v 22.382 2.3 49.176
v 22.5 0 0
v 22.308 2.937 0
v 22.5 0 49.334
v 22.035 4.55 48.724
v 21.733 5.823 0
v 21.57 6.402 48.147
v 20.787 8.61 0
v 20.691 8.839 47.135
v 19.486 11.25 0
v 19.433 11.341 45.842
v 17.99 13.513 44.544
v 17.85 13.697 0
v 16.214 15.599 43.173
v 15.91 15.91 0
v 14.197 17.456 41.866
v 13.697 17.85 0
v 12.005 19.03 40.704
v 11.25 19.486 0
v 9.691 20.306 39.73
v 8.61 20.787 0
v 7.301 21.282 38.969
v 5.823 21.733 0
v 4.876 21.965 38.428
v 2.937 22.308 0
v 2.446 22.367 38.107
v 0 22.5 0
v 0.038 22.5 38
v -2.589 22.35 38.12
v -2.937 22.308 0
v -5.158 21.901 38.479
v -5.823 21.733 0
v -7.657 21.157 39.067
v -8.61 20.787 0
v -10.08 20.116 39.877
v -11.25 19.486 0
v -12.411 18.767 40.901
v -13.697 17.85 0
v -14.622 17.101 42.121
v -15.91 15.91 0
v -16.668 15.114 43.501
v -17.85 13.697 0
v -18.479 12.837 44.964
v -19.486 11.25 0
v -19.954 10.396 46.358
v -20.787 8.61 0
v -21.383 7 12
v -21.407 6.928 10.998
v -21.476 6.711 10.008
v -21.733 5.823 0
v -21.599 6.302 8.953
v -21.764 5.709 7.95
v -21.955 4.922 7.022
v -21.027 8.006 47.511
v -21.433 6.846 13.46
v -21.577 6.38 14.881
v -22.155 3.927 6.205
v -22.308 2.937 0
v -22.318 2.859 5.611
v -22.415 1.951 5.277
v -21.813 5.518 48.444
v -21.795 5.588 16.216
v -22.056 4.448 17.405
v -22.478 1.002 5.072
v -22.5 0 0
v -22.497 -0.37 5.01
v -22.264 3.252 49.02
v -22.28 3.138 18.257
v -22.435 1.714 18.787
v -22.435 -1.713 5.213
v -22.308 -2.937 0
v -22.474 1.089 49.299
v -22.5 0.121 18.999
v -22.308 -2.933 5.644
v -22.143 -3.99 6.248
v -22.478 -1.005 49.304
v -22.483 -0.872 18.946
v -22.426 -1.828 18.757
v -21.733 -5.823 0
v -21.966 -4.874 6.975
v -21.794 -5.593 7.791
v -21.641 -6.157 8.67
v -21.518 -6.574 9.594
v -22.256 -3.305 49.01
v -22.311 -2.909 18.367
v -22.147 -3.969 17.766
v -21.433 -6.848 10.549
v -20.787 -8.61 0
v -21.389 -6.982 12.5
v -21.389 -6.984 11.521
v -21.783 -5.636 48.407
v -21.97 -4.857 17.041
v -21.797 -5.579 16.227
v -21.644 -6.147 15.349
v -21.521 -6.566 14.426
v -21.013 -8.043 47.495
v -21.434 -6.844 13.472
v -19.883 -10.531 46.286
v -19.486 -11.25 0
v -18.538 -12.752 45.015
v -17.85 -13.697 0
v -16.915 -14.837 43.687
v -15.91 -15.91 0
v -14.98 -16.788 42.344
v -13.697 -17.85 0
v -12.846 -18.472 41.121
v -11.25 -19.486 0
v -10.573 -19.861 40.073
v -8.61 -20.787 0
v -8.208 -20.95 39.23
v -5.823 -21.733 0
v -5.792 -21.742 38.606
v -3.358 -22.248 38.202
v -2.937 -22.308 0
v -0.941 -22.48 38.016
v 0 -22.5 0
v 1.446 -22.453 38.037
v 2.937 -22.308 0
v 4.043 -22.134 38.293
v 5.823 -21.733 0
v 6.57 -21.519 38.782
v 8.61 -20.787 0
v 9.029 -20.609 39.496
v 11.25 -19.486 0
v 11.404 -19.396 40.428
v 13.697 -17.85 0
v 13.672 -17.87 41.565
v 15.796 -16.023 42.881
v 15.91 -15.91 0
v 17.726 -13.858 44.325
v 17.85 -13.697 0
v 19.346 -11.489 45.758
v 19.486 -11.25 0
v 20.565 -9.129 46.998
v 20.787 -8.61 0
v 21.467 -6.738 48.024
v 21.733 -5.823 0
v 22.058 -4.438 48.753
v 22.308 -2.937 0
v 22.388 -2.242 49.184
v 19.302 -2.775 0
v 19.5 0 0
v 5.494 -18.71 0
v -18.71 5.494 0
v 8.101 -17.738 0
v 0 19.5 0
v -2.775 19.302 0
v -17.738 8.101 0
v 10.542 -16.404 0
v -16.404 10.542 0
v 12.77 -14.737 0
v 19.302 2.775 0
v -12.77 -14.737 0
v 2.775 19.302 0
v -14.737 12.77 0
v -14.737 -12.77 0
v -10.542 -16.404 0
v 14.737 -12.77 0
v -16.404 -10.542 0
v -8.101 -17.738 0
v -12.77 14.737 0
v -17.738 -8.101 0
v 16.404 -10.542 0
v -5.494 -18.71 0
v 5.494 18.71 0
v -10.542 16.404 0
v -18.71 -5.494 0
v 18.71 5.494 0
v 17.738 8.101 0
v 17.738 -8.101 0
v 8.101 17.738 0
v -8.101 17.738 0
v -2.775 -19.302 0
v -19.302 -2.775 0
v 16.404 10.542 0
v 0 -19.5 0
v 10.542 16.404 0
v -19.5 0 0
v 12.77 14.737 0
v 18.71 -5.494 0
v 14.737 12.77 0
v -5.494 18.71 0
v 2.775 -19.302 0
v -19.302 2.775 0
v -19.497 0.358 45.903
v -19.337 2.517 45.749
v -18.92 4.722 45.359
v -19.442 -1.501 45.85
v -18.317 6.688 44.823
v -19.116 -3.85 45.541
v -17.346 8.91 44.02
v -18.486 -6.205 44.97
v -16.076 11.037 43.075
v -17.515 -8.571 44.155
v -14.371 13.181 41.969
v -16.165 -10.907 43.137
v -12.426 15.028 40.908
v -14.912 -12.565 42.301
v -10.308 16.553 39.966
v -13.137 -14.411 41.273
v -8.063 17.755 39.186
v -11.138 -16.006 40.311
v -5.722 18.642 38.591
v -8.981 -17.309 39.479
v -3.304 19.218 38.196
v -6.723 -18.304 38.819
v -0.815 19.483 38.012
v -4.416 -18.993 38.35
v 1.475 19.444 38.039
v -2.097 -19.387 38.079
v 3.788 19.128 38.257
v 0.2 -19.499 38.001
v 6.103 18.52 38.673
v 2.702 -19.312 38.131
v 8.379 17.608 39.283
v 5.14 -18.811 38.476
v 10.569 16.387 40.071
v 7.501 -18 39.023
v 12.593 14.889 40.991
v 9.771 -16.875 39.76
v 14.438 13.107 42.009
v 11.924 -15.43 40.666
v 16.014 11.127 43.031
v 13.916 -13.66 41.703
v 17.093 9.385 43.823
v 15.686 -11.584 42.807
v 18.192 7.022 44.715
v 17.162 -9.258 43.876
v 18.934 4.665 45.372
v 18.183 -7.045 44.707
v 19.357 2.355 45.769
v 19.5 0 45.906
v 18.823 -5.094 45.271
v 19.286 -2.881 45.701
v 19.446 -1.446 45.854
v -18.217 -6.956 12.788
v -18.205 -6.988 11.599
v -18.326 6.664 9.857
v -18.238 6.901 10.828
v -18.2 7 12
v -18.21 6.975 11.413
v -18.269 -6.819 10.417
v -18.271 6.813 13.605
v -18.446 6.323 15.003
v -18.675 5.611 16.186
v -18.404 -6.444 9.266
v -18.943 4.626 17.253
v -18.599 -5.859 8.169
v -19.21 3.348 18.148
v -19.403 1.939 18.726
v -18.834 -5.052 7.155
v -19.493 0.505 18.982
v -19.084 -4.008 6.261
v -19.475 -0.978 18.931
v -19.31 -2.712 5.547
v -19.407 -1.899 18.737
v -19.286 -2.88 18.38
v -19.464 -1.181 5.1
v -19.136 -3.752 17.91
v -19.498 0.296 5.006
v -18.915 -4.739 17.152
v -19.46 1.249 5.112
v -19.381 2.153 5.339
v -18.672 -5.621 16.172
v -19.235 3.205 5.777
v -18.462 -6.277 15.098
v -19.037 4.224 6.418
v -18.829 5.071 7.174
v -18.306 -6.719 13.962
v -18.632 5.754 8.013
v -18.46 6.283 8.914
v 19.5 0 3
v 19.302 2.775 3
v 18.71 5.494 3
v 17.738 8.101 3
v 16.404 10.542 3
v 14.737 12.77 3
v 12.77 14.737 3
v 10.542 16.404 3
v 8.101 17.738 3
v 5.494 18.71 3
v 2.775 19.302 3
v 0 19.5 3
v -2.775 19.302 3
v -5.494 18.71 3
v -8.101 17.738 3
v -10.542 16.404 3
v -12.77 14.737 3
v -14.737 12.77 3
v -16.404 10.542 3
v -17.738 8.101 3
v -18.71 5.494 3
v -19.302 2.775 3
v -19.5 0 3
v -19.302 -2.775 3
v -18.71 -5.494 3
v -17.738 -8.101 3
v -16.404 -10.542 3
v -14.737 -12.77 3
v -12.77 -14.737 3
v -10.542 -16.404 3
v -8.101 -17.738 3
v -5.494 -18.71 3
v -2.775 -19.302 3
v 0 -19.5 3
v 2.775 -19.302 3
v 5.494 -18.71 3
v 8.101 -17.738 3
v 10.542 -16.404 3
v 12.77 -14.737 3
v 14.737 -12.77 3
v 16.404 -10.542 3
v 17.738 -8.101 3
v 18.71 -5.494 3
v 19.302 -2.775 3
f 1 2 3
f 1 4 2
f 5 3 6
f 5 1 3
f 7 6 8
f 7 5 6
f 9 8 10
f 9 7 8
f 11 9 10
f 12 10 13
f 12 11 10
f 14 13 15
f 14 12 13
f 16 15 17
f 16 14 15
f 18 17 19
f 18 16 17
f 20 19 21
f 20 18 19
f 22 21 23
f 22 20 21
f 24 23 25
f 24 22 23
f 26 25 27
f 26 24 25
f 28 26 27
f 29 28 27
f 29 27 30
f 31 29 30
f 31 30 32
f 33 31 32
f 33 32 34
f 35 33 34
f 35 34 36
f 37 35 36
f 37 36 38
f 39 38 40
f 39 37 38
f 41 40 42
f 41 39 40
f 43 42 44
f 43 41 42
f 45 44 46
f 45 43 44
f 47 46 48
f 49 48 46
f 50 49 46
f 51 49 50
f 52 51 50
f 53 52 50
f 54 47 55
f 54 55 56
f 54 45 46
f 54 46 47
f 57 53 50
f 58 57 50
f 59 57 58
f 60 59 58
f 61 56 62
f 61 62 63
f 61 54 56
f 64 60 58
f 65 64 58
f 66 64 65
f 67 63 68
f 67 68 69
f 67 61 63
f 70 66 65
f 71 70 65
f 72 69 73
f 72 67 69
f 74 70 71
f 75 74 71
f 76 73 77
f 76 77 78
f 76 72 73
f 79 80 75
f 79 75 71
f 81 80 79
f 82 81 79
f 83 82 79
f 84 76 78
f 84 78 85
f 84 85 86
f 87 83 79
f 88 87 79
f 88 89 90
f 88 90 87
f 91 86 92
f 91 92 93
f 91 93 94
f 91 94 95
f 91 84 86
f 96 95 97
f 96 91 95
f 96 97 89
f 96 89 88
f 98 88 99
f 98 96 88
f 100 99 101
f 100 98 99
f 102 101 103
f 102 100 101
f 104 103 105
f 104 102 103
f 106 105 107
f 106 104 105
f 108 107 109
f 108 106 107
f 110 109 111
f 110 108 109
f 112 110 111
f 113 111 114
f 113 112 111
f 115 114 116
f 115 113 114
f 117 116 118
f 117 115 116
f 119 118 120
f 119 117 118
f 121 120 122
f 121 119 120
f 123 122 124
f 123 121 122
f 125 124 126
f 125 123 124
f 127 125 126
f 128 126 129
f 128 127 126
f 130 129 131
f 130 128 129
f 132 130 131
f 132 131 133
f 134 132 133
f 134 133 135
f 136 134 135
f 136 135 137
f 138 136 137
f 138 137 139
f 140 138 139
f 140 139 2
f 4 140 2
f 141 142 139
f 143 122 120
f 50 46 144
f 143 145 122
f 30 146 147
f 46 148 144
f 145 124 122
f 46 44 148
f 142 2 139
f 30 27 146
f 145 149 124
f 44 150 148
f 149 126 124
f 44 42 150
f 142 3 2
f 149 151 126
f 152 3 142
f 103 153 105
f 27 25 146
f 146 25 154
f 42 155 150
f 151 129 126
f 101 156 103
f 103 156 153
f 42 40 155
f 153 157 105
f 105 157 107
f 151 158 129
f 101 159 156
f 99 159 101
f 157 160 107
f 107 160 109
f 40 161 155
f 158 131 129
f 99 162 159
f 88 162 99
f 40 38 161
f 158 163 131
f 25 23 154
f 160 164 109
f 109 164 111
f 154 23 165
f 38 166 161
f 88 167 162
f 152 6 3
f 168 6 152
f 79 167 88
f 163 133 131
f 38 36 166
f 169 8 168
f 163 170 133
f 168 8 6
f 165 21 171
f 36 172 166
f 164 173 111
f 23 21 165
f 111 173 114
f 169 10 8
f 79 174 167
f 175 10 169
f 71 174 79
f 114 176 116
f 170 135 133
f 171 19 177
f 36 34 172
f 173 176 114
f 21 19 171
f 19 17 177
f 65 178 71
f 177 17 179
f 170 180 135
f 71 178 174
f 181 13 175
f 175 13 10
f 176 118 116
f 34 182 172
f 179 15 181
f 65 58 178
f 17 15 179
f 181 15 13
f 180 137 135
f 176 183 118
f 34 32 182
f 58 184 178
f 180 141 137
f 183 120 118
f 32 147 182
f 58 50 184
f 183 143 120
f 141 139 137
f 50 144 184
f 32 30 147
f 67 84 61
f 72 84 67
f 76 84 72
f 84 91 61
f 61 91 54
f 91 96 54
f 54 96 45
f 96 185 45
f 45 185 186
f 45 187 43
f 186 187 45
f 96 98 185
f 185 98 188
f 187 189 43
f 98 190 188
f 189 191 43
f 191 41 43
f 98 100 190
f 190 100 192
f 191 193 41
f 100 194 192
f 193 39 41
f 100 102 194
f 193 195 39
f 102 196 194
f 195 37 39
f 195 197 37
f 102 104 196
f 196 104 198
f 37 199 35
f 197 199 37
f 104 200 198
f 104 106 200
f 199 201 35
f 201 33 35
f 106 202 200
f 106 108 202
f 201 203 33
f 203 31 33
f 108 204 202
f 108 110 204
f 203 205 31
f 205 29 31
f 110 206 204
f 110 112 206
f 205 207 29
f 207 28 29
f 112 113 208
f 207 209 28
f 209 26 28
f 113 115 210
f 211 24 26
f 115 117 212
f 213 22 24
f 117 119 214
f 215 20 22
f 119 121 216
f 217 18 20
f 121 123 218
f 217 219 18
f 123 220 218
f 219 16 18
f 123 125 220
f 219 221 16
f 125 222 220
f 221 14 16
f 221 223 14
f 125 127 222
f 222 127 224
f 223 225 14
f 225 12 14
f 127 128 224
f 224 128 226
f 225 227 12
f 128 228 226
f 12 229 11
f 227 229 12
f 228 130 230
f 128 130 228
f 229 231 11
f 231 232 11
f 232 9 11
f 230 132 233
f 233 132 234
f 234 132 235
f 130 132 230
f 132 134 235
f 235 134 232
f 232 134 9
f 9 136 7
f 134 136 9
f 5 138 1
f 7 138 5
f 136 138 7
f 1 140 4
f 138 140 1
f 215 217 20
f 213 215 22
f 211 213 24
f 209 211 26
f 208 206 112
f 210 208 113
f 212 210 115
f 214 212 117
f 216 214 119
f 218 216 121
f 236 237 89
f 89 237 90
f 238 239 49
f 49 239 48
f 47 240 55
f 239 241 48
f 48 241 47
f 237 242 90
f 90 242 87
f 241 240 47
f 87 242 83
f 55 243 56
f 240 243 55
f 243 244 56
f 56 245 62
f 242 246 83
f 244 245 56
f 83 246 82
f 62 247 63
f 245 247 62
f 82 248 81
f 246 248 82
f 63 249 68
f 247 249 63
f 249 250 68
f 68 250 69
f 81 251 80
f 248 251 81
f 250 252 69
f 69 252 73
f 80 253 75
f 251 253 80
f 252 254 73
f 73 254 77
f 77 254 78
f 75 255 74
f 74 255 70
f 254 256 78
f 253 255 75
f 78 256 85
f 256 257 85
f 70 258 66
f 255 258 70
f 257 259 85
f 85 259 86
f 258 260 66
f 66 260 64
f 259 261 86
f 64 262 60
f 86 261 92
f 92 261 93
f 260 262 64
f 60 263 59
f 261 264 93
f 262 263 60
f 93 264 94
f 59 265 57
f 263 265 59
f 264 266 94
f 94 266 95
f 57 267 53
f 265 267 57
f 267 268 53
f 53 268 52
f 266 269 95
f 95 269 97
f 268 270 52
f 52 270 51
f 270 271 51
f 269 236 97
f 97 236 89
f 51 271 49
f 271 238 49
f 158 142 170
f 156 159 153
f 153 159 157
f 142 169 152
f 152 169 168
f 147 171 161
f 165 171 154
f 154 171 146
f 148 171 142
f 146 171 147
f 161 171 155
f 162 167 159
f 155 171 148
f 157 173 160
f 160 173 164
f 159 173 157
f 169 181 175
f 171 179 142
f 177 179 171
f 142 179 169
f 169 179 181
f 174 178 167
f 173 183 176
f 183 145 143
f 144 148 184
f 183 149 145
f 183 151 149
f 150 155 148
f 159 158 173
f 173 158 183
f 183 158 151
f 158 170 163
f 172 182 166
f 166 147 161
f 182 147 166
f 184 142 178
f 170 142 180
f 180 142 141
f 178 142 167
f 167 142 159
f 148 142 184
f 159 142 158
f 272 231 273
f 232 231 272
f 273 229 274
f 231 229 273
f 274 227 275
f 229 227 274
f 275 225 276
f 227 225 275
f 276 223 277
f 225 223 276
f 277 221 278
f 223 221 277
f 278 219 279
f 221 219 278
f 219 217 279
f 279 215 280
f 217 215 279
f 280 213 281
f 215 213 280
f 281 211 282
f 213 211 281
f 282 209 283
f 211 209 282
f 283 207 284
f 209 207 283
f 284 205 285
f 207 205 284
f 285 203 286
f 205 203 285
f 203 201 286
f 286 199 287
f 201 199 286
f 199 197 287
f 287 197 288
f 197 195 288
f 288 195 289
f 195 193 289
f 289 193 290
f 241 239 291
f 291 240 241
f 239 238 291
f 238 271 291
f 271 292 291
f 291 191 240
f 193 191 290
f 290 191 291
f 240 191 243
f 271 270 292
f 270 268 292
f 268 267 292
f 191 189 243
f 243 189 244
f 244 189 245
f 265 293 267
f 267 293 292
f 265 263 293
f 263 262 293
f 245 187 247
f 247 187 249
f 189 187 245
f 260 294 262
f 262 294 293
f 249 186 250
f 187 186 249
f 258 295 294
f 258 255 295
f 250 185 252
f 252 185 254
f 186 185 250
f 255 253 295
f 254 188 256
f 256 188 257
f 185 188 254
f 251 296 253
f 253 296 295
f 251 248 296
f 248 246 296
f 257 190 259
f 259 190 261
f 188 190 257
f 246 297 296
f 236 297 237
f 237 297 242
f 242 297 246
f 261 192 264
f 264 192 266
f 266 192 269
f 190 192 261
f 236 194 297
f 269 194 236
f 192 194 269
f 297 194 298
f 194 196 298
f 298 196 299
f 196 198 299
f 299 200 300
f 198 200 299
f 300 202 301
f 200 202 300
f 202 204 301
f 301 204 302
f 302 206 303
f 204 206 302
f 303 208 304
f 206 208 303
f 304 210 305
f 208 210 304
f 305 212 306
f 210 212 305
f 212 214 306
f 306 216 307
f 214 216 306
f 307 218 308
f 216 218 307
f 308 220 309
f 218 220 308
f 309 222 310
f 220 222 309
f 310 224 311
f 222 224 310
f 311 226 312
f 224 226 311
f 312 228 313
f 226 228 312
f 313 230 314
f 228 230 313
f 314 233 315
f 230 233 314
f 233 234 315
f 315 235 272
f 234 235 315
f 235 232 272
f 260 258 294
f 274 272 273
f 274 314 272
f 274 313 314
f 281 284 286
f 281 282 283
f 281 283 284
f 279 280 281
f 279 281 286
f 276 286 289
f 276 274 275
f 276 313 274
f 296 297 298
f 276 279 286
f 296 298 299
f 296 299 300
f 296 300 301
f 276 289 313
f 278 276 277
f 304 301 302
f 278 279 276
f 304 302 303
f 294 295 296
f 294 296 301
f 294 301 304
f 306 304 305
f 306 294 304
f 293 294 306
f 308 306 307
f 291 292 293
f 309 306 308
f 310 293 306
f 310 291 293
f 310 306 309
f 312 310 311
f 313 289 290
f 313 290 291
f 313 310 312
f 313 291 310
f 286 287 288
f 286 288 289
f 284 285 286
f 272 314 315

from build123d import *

# Parameters (mm, degrees)
CYLINDER_R        = 22.5
CYLINDER_DEPTH    = 50
CYLINDER001_R     = 19.5
CYLINDER001_DEPTH = 60
CYLINDER002_R     = 28
CYLINDER002_DEPTH = 54
CYLINDER003_R     = 7
CYLINDER003_DEPTH = 10
CYLINDER004_R     = 19.5
CYLINDER004_DEPTH = 3


with BuildPart() as part:
    # Cylinder → Cylinder (join)
    with BuildSketch(Plane.XY):
        Circle(CYLINDER_R)
    extrude(amount=CYLINDER_DEPTH)

    # Cylinder001 → Cylinder001 (cut)
    with BuildSketch(Plane.XY.offset(-5)):
        Circle(CYLINDER001_R)
    extrude(amount=CYLINDER001_DEPTH, mode=Mode.SUBTRACT)

    # Cylinder002 → Cylinder002 (cut)
    with BuildSketch(Plane(origin=(0, 26, 66), x_dir=(1, 0, 0), z_dir=(0, -1, 0))):
        Circle(CYLINDER002_R)
    extrude(amount=CYLINDER002_DEPTH, mode=Mode.SUBTRACT)

    # Cylinder003 → Cylinder003 (cut)
    with BuildSketch(Plane(origin=(-26, 0, 12), x_dir=(0, 1, 0), z_dir=(1, 0, 0))):
        Circle(CYLINDER003_R)
    extrude(amount=CYLINDER003_DEPTH, mode=Mode.SUBTRACT)

    # Cylinder004 → Cylinder004 (join)
    with BuildSketch(Plane.XY):
        Circle(CYLINDER004_R)
    extrude(amount=CYLINDER004_DEPTH)


solid = part.part
